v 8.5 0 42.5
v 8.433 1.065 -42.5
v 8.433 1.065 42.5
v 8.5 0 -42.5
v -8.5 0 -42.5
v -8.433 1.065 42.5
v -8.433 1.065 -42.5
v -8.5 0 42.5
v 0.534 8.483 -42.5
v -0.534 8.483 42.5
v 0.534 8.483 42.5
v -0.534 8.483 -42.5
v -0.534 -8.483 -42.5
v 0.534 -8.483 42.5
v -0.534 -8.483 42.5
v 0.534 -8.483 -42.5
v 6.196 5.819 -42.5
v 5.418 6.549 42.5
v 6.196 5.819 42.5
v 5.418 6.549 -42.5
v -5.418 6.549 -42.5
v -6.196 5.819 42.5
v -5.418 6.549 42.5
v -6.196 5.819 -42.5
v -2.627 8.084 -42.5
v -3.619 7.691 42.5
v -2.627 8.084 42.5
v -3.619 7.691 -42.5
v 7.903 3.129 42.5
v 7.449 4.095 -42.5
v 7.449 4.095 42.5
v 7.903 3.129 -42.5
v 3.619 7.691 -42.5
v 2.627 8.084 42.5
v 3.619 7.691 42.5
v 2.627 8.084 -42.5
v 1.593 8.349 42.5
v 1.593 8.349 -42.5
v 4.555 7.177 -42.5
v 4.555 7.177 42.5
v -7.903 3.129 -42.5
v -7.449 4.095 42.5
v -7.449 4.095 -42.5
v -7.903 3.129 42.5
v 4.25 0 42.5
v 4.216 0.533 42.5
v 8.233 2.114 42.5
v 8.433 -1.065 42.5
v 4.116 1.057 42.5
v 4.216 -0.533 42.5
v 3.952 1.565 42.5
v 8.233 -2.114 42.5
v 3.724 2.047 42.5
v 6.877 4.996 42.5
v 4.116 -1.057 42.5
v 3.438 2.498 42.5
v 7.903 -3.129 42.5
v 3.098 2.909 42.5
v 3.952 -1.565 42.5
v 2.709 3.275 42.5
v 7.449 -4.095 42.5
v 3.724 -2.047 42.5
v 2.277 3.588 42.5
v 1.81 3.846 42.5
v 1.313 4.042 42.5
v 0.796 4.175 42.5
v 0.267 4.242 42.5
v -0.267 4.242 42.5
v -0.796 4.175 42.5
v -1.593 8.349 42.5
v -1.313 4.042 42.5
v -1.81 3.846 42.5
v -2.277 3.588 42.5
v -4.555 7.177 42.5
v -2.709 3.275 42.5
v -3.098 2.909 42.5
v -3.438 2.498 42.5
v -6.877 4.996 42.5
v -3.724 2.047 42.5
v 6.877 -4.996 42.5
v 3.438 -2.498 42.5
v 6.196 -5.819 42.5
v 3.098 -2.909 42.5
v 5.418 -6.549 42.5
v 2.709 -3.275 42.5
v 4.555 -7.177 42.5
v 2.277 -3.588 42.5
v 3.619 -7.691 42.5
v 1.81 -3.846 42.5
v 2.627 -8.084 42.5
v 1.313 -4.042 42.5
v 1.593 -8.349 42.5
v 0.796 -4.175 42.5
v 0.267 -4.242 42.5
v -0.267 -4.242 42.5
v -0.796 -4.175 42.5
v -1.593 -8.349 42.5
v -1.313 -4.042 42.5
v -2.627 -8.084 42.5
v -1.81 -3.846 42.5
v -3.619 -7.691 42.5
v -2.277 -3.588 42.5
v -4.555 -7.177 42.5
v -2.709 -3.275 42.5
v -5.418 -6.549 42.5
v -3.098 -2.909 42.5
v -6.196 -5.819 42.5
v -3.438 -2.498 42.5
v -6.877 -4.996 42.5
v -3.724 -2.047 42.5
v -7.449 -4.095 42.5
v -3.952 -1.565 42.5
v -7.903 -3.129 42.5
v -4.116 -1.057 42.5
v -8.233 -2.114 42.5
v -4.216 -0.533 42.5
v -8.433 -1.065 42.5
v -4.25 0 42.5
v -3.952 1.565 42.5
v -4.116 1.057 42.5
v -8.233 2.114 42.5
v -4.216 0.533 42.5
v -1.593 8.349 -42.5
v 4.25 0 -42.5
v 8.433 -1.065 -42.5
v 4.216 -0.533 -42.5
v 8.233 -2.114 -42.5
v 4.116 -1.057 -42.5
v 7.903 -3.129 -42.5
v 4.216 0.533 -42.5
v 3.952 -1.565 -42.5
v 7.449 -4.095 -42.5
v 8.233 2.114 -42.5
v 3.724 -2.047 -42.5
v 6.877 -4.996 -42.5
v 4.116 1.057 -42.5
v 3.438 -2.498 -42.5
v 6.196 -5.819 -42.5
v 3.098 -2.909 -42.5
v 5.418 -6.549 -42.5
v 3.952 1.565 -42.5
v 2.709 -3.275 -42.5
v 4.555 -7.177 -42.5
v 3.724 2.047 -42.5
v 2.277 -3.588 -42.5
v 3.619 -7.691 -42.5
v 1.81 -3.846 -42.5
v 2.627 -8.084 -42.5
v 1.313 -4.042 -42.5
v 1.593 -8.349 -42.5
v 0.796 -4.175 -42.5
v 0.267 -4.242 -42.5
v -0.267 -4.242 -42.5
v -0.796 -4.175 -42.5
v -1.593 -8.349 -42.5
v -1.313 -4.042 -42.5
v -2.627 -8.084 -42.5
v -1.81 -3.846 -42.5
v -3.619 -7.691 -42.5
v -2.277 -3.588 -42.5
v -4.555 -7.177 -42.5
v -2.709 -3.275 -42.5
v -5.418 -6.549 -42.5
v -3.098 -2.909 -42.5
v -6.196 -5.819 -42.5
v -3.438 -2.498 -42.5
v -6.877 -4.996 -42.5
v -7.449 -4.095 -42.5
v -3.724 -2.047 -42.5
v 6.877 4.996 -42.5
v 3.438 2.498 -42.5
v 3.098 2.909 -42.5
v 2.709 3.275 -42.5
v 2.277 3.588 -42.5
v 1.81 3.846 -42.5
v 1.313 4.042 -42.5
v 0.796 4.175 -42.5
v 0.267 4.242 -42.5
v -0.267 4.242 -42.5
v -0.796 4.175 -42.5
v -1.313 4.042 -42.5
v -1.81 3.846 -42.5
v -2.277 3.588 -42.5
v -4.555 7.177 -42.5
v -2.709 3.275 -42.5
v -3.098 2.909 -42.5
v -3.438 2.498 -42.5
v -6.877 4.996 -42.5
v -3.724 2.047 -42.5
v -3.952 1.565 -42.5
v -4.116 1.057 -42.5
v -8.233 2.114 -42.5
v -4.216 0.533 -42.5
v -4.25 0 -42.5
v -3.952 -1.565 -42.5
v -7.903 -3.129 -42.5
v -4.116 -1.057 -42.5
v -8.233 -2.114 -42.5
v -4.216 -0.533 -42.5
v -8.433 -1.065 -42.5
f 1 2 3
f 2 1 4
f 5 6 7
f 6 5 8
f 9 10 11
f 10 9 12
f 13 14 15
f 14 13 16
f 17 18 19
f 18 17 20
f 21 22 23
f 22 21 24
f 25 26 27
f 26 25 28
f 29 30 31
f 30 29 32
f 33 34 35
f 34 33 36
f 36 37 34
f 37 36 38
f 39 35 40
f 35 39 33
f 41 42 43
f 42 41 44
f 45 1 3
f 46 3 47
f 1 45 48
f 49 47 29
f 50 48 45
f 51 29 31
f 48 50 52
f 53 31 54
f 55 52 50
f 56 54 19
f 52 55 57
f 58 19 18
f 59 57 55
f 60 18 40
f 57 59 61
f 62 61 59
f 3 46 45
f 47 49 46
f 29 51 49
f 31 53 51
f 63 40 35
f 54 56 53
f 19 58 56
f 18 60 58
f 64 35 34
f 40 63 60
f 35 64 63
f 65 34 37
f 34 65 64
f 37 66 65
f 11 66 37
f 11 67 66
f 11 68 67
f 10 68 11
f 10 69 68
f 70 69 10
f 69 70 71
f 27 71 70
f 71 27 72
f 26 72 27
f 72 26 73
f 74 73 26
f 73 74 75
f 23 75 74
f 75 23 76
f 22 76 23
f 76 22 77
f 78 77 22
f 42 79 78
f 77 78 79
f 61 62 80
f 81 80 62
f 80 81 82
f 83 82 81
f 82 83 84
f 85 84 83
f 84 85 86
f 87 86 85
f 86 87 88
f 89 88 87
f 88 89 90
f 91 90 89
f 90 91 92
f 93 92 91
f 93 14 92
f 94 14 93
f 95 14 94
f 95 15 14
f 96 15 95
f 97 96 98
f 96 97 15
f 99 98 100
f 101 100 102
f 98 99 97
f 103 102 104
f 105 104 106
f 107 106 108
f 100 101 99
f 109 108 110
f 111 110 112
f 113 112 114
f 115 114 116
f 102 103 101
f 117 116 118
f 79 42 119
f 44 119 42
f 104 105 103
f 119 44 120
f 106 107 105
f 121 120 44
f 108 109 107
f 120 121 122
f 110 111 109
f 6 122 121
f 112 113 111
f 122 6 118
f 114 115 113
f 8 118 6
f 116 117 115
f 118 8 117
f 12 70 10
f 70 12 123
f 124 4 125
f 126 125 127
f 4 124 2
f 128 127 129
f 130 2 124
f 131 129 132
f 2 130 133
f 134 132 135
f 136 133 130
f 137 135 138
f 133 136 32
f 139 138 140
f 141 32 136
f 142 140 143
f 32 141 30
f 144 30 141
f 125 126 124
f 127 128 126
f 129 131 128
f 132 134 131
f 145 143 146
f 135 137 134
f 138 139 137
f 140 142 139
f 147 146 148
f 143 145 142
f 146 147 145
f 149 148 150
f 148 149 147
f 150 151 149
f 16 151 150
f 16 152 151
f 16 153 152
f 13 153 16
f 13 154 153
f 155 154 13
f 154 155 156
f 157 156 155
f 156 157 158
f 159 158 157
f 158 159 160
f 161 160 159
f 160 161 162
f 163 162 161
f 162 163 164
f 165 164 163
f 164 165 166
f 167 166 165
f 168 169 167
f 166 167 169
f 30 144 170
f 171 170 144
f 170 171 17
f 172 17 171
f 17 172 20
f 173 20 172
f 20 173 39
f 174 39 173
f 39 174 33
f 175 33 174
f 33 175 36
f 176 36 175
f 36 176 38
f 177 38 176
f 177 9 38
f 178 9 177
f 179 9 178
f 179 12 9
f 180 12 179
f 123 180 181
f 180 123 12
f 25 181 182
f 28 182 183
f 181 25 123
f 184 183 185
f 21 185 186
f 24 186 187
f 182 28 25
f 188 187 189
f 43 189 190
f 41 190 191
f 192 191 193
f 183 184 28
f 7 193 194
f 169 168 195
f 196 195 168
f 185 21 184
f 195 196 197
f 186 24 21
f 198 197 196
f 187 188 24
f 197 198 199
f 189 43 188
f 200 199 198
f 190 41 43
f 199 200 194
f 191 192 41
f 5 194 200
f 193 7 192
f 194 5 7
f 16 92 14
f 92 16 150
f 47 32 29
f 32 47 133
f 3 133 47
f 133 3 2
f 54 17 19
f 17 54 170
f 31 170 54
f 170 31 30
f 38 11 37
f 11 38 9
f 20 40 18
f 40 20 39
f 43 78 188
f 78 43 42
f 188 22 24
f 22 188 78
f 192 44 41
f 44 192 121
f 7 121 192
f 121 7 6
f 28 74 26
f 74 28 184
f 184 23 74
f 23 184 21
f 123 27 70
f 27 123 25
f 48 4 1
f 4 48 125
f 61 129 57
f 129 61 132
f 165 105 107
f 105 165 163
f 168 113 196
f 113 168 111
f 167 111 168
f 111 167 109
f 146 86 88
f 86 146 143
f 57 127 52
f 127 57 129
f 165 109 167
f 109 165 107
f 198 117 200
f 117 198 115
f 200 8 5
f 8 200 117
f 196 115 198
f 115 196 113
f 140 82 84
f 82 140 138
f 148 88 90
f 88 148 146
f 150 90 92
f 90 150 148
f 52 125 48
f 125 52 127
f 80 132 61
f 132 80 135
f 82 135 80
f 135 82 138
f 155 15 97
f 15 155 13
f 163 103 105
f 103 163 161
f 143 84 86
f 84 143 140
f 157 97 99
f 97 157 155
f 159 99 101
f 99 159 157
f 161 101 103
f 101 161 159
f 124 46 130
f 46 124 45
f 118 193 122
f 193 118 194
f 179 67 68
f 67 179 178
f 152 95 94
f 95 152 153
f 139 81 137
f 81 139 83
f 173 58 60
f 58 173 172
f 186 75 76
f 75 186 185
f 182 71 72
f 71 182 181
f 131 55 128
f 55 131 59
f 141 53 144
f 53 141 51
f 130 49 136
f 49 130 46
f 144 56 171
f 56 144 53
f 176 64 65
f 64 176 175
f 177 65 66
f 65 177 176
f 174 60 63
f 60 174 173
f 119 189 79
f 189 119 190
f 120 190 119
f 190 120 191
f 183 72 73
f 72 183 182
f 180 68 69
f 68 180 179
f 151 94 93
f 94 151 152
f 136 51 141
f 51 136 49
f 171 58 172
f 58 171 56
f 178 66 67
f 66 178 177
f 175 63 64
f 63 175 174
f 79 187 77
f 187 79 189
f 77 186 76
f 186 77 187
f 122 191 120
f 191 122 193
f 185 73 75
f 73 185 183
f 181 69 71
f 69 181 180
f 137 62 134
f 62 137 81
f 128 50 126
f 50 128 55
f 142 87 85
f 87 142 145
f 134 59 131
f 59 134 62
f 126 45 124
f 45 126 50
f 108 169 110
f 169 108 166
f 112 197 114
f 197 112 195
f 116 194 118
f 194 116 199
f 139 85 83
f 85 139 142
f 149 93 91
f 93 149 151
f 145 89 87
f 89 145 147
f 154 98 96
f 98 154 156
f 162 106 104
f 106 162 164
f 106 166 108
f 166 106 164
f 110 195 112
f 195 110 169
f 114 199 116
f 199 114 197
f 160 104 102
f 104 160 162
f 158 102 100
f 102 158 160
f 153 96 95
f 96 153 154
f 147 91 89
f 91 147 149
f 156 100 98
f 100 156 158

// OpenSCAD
$fn = 50;


difference() {
	union() {
		translate(v = [0, 0, -42.5000000000]) {
			cylinder(h = 85, r = 8.5000000000);
		}
	}
	union() {
		translate(v = [0, 0, -100.0000000000]) {
			cylinder(h = 200, r = 4.2500000000);
		}
	}
}
